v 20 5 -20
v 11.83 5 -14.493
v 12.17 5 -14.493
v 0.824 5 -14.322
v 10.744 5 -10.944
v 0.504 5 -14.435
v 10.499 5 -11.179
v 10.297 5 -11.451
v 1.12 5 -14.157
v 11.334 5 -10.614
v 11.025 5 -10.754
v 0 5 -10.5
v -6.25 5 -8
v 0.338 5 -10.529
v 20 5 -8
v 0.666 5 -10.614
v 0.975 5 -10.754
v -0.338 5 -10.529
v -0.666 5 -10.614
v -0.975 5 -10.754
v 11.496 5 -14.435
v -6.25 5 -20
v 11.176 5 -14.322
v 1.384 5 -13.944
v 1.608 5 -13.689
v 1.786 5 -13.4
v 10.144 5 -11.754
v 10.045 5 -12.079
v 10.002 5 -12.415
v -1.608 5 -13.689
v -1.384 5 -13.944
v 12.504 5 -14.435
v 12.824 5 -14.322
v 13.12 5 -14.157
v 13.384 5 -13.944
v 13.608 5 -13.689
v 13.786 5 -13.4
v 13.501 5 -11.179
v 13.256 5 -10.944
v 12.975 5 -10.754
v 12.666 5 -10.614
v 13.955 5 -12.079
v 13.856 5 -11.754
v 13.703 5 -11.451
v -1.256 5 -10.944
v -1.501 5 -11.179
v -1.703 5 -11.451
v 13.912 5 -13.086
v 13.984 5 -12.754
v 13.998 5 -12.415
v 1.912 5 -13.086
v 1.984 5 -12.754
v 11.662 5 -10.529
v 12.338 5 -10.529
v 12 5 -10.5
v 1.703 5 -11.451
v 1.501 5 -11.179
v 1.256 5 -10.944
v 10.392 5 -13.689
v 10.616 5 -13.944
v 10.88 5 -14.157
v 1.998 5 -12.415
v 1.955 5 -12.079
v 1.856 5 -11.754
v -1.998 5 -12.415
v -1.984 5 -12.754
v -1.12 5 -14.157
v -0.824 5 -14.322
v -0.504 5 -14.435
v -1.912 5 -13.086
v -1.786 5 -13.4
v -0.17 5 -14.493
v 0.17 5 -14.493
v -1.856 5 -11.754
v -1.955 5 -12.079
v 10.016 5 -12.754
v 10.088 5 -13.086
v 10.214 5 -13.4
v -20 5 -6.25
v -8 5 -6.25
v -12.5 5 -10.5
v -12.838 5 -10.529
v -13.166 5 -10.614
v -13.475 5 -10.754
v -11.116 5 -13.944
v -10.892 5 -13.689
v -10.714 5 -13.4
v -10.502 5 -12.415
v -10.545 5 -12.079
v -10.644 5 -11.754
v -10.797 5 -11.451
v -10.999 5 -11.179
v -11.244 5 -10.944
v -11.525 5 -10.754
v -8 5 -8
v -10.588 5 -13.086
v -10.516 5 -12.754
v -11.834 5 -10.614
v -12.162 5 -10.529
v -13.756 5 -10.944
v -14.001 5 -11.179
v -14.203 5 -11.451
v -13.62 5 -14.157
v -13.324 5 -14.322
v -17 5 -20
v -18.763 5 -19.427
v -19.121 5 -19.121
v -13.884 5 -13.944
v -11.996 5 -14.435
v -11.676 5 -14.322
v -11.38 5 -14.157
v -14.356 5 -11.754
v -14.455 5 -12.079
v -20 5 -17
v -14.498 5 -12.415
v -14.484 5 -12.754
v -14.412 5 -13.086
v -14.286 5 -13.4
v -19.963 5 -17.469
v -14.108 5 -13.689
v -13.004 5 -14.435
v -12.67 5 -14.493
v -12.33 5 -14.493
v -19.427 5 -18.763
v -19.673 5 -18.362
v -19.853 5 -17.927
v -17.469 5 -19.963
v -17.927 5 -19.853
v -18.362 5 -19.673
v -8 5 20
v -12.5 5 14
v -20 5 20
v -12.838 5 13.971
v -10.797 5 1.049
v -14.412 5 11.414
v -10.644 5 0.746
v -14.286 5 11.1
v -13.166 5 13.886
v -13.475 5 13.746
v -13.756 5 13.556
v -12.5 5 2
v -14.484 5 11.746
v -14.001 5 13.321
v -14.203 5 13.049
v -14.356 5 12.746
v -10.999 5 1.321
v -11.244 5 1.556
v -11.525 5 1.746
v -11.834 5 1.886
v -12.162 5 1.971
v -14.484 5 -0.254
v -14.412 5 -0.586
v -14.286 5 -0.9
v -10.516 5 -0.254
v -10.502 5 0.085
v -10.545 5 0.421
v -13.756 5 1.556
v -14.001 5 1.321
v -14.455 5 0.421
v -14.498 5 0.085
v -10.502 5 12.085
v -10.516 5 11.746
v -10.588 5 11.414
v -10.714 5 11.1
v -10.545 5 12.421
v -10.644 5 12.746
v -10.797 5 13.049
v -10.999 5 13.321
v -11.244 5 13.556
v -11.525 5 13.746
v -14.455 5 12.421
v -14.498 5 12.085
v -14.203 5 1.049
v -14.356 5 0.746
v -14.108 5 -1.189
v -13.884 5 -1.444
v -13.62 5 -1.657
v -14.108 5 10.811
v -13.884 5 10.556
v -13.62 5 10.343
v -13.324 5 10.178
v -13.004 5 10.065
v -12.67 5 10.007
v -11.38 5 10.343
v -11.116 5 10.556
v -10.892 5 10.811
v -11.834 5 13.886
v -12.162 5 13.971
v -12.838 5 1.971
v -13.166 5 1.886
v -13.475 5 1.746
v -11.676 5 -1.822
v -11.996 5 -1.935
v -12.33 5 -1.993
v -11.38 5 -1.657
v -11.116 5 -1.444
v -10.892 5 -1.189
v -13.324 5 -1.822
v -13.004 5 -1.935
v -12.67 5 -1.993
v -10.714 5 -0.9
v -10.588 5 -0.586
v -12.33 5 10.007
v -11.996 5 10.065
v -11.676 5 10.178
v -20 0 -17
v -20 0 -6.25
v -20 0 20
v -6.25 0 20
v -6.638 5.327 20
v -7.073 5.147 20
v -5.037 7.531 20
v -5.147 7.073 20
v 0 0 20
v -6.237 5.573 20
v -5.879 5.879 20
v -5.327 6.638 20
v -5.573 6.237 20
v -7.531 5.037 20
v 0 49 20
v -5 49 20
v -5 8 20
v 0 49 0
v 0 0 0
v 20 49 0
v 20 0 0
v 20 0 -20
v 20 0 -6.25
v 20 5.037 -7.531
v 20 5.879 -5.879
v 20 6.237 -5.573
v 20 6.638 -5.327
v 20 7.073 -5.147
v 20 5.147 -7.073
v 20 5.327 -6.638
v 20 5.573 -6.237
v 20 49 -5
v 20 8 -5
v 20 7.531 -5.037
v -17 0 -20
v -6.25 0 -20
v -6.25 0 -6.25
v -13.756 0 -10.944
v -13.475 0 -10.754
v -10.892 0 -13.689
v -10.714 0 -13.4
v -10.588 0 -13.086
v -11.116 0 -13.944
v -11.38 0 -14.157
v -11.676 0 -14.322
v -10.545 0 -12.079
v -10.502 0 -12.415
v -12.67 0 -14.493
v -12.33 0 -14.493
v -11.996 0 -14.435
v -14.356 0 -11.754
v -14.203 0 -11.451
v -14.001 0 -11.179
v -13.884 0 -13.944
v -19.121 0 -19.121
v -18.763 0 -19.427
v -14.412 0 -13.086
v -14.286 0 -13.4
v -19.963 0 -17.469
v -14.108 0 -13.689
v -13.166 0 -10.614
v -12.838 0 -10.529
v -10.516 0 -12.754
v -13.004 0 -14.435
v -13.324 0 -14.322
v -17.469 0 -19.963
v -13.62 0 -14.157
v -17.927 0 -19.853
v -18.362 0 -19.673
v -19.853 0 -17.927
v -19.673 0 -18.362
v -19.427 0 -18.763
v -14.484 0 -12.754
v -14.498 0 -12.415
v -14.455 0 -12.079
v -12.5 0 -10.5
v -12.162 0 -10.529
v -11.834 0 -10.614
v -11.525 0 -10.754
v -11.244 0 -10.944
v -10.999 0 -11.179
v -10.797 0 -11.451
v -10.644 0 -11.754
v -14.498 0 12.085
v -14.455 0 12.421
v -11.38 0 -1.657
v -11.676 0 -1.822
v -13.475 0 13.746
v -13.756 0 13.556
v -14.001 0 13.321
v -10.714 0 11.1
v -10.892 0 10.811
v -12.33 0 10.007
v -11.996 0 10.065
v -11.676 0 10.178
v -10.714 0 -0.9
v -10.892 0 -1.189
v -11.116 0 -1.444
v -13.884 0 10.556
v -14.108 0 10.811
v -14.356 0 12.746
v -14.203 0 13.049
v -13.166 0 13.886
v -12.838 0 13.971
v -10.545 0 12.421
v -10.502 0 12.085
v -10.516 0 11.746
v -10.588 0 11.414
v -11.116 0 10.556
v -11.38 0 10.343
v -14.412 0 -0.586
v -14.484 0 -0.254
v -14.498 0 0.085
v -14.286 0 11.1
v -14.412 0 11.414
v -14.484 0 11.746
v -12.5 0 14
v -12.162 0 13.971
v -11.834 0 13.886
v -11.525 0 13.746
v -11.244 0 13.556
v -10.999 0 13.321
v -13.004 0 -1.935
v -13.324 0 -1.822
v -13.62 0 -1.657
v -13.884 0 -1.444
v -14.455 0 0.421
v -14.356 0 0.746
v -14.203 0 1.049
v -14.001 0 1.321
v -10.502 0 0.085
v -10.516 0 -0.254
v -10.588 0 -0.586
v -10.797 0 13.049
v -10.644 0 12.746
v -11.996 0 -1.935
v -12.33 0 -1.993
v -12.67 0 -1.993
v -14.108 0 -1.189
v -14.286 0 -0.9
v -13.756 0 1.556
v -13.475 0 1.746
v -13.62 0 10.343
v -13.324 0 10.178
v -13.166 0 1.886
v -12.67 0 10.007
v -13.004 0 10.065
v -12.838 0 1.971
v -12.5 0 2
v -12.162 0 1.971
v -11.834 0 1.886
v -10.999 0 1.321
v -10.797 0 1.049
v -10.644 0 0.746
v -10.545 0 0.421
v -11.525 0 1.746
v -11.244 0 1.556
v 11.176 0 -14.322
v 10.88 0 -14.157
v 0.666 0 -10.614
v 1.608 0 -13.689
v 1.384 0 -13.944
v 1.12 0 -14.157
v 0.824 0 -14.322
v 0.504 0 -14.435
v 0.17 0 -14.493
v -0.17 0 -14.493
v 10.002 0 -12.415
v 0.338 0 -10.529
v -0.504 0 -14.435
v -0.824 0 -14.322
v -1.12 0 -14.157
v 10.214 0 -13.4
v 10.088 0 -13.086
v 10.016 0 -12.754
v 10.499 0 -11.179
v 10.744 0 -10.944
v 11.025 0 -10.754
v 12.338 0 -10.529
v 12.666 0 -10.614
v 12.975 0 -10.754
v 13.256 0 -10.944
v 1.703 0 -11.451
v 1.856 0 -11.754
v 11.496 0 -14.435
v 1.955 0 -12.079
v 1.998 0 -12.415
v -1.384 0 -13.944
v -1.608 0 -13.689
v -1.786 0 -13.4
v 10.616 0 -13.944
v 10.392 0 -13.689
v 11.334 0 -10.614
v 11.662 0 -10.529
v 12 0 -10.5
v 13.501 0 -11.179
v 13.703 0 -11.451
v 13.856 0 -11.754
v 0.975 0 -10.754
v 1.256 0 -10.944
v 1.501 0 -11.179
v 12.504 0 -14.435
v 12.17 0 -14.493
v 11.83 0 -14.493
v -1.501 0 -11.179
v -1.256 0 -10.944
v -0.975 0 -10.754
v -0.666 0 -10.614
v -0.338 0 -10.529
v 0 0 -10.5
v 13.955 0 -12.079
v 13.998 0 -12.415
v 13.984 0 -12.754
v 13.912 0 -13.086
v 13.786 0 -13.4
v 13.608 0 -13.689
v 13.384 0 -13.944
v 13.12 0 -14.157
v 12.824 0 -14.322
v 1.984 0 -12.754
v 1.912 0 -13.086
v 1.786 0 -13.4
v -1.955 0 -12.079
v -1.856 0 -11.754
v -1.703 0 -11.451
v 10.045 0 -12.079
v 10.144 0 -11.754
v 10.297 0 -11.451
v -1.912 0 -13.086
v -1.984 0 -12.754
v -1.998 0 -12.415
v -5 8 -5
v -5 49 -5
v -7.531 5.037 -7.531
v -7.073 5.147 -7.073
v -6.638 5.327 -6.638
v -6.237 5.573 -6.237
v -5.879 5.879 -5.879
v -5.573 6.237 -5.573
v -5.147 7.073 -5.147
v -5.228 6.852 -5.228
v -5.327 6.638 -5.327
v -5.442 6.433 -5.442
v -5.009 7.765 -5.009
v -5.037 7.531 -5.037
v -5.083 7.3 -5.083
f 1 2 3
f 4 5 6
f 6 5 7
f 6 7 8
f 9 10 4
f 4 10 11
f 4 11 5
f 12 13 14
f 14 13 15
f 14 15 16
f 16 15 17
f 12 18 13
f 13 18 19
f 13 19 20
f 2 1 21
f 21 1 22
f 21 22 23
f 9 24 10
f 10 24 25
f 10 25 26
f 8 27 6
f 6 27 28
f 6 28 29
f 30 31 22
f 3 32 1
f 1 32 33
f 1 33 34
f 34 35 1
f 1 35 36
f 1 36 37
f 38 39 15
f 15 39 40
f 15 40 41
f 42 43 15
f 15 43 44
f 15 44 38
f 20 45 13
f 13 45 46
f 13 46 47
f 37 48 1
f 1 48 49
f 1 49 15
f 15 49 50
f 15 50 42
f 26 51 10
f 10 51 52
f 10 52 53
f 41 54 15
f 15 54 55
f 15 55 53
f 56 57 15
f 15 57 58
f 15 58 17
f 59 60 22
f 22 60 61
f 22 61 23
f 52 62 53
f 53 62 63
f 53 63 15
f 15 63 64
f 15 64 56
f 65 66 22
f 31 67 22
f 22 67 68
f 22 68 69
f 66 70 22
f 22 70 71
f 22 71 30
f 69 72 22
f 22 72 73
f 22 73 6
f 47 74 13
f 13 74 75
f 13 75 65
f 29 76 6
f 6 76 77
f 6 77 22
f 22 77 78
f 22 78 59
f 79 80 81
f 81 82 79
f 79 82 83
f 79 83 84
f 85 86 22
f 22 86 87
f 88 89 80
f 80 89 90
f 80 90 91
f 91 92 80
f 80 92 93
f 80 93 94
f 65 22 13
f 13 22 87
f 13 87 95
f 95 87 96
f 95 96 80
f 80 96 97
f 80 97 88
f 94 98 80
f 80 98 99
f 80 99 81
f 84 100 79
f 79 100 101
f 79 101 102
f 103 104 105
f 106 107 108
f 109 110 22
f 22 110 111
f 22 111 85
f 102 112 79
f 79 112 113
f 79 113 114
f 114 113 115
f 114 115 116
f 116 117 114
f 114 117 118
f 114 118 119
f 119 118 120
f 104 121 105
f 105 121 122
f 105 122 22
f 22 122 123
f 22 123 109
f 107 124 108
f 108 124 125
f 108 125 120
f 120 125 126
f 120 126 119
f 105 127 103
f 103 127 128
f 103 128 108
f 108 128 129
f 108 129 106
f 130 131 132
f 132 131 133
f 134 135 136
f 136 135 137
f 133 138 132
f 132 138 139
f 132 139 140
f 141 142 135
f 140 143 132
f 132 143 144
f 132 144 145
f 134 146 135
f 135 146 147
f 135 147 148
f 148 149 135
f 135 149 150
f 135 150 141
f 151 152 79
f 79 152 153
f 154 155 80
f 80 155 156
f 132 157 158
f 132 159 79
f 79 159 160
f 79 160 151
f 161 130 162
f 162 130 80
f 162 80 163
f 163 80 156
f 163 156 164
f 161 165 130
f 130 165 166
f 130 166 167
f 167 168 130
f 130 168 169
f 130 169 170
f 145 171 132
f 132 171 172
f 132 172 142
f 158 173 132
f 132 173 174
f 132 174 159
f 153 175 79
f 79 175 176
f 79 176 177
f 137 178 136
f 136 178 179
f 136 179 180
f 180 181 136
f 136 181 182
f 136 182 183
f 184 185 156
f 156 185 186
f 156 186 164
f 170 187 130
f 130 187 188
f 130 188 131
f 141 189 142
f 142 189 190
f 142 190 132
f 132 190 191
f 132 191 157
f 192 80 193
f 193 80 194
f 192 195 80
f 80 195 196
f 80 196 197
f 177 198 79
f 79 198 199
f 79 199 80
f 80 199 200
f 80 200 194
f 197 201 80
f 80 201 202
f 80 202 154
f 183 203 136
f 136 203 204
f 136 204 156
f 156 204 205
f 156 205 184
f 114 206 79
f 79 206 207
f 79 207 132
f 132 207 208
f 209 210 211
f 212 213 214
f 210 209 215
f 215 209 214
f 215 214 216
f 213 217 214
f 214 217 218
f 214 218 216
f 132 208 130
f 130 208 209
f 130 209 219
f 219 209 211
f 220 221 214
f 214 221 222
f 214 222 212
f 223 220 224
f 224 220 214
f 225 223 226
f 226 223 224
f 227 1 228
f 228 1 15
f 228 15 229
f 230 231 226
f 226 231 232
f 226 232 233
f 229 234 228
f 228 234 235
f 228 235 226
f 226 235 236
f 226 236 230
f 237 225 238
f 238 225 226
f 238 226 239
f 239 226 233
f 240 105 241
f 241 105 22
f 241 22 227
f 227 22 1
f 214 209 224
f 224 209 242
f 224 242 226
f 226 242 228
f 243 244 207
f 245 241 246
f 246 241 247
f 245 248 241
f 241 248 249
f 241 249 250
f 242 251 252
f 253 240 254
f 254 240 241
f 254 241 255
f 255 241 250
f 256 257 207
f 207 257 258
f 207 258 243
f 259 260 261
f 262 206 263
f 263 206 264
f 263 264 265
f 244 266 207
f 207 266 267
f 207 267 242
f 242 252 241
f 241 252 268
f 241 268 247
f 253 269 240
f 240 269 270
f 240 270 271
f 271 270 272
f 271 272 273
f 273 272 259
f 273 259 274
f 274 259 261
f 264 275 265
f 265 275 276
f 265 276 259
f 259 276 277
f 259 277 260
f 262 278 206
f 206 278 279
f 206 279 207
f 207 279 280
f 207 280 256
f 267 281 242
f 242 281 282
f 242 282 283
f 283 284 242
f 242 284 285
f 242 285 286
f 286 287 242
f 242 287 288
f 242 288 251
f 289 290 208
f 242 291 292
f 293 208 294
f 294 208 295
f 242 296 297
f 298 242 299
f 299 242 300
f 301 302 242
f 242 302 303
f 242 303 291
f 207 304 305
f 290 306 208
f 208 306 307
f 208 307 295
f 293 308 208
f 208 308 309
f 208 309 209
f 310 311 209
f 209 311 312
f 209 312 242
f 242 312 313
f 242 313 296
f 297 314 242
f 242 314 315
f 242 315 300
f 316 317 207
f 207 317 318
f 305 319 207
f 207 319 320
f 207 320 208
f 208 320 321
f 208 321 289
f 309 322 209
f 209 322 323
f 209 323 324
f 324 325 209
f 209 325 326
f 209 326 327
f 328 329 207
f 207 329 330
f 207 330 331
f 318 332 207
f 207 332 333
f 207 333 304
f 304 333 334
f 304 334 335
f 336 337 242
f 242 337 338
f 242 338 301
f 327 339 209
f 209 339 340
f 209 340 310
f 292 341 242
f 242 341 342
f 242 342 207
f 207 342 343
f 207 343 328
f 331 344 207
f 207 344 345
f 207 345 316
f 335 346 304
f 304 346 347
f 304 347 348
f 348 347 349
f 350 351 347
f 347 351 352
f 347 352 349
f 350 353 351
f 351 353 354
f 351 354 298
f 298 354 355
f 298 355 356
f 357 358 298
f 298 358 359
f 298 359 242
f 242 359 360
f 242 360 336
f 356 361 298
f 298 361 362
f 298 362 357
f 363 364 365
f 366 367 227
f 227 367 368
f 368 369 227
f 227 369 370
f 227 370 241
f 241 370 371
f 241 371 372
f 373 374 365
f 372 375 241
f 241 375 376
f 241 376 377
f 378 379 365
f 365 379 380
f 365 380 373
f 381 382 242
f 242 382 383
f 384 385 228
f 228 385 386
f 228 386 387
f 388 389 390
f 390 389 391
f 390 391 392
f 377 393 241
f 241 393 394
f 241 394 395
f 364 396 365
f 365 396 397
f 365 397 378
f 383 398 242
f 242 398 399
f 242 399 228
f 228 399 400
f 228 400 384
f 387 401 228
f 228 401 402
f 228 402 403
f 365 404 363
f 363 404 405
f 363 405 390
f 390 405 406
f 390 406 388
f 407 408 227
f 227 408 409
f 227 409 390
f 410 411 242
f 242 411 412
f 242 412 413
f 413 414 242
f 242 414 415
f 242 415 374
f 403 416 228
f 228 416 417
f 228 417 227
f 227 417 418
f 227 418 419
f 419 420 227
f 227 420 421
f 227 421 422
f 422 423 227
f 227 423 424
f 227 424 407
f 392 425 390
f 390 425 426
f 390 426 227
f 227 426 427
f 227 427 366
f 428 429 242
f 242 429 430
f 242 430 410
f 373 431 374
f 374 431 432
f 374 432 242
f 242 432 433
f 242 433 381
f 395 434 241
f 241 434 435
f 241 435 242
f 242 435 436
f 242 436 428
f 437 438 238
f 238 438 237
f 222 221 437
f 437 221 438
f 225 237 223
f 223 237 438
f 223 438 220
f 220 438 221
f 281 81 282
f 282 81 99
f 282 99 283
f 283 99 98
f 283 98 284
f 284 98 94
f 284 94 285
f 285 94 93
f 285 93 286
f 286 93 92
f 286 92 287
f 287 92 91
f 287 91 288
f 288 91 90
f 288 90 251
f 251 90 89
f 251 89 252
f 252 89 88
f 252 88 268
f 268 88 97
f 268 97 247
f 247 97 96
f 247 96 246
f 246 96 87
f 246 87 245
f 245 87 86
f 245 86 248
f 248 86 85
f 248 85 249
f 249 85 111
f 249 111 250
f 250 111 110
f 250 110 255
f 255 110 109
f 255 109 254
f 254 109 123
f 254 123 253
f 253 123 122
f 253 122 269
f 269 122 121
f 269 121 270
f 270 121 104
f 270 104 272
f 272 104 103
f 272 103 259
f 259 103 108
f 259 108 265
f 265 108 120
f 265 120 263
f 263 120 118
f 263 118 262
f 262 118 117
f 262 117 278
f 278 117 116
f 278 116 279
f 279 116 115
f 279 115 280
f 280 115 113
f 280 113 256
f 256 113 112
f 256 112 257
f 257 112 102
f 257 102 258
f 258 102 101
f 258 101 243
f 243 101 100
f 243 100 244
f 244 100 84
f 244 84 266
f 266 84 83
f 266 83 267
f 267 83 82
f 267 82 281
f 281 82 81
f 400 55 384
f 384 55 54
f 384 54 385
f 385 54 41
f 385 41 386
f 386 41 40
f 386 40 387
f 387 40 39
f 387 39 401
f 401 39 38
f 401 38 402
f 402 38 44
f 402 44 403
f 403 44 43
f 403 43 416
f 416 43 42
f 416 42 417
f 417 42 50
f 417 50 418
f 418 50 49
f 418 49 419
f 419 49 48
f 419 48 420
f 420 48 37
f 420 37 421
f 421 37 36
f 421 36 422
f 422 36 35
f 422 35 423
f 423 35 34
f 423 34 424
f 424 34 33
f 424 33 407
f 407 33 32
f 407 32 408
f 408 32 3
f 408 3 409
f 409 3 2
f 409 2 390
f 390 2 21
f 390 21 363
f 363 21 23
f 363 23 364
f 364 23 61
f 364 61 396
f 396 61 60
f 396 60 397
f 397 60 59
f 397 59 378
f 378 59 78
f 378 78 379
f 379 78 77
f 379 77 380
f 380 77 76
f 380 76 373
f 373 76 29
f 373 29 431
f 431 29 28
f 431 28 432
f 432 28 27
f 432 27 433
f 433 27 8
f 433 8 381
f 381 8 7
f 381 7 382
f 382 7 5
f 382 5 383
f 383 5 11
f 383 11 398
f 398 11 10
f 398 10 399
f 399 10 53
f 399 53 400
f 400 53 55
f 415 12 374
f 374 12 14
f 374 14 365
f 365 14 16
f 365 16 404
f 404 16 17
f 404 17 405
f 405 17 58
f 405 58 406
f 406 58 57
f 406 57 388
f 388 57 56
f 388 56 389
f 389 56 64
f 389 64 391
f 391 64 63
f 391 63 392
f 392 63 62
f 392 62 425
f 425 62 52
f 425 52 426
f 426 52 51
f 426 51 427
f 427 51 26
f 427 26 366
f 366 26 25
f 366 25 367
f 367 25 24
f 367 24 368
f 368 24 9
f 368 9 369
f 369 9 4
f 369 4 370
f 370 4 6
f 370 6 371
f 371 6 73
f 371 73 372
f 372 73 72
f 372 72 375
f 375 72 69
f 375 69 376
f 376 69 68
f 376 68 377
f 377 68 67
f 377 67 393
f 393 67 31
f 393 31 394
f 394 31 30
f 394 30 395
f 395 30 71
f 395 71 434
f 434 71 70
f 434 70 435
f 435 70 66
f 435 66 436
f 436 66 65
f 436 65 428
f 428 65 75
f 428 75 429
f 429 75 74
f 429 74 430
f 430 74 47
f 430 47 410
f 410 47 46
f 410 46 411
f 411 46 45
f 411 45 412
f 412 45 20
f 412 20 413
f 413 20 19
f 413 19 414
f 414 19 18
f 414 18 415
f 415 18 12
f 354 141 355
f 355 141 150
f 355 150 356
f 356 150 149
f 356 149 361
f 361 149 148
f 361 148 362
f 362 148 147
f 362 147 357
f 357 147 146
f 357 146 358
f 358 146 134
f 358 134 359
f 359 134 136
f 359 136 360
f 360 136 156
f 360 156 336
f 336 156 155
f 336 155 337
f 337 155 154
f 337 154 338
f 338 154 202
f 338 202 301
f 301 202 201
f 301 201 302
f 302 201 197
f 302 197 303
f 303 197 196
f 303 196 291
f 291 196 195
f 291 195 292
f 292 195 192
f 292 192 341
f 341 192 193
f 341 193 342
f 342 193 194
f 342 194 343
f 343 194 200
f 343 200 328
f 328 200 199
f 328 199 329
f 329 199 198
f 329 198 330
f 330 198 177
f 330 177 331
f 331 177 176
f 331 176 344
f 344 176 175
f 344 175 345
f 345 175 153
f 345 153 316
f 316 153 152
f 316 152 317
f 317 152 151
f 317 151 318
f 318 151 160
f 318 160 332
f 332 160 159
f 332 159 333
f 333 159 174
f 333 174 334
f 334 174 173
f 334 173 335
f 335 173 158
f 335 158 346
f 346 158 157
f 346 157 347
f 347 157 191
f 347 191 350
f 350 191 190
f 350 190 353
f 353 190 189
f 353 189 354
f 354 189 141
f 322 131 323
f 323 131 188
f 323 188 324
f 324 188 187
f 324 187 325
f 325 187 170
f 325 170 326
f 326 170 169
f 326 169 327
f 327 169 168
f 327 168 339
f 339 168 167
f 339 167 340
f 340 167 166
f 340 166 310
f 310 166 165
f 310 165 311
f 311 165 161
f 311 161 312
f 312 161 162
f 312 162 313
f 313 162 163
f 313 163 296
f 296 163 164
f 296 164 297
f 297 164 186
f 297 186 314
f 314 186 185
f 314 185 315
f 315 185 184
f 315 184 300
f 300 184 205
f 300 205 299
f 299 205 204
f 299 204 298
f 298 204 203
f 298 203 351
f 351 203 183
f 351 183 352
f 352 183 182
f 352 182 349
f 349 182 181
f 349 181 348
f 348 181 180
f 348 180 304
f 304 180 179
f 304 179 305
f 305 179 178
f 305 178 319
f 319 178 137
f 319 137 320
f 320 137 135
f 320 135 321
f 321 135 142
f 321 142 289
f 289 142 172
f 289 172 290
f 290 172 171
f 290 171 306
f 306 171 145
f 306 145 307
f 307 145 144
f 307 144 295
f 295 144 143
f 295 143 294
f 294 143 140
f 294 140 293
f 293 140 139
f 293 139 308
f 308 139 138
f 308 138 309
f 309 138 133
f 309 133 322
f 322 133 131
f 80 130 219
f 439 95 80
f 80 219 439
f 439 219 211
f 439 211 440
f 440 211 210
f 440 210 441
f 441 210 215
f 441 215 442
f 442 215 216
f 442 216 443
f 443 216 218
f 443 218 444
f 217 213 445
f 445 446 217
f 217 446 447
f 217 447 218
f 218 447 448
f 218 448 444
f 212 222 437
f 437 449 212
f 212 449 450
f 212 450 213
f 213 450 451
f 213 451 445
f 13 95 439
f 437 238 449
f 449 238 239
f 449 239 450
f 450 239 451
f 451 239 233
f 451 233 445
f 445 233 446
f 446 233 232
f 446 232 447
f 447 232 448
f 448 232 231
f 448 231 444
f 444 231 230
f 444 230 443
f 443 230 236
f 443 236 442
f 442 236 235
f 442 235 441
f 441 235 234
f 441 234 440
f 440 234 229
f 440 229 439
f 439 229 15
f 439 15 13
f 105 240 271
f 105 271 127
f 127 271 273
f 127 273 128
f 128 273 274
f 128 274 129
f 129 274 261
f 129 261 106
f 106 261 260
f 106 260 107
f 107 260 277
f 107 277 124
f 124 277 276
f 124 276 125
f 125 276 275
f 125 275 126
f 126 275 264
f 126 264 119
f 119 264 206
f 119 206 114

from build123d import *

# Parameters (mm, degrees)
BOSS_EXTRUDE1_DEPTH = 5
SKETCH2_W           = 5
SKETCH2_H           = 20
SKETCH2_H_2         = 5
SKETCH2_W_2         = 20
BOSS_EXTRUDE2_DEPTH = 44
SKETCH3_R           = 2
CUT_EXTRUDE1_DEPTH  = 53.306787322
FILLET1_R           = 3
FILLET2_R           = 3


with BuildPart() as part:
    # Sketch1 → Boss-Extrude1 (new body)
    with BuildSketch(Plane(origin=(0, 0, 0), x_dir=(1, 0, 0), z_dir=(0, 1, 0))):
        Polygon((20, 20), (-20, 20), (-20, -20), (0, -20), (0, 0), (20, 0), align=None)
    extrude(amount=BOSS_EXTRUDE1_DEPTH)

    # Sketch2 → Boss-Extrude2 (add)
    with BuildSketch(Plane(origin=(0, 5, 0), x_dir=(1, 0, 0), z_dir=(0, 1, 0))):
        with Locations((-2.5, -10)):
            Rectangle(SKETCH2_W, SKETCH2_H)
        with Locations((-2.5, 2.5)):
            Rectangle(SKETCH2_W, SKETCH2_H_2)
        with Locations((10, 2.5)):
            Rectangle(SKETCH2_W_2, SKETCH2_H_2)
    extrude(amount=BOSS_EXTRUDE2_DEPTH)

    # Sketch3 → Cut-Extrude1 (cut, through all)
    with BuildSketch(Plane(origin=(0, 5, 0), x_dir=(1, 0, 0), z_dir=(0, 1, 0))):
        with Locations(Location((-12.5, -12, 0), (0, 0, 270))):
            Circle(SKETCH3_R)
        with Locations(Location((-12.5, 12.5, 0), (0, 0, 270))):
            Circle(SKETCH3_R)
        with Locations(Location((12, 12.5, 0), (0, 0, 270))):
            Circle(SKETCH3_R)
        with Locations(Location((-12.5, 0, 0), (0, 0, 270))):
            Circle(SKETCH3_R)
        with Locations(Location((0, 12.5, 0), (0, 0, 270))):
            Circle(SKETCH3_R)
    extrude(amount=-CUT_EXTRUDE1_DEPTH, mode=Mode.SUBTRACT)

    # Fillet1
    fillet1_edges = [part.edges().sort_by_distance(p)[0] for p in [
        (7.5, 5, -5),
        (-5, 5, 7.5),
    ]]
    fillet(fillet1_edges, radius=FILLET1_R)

    # Fillet2
    fillet2_edges = [part.edges().sort_by_distance(p)[0] for p in [
        (-20, 2.5, -20),
    ]]
    fillet(fillet2_edges, radius=FILLET2_R)


solid = part.part
